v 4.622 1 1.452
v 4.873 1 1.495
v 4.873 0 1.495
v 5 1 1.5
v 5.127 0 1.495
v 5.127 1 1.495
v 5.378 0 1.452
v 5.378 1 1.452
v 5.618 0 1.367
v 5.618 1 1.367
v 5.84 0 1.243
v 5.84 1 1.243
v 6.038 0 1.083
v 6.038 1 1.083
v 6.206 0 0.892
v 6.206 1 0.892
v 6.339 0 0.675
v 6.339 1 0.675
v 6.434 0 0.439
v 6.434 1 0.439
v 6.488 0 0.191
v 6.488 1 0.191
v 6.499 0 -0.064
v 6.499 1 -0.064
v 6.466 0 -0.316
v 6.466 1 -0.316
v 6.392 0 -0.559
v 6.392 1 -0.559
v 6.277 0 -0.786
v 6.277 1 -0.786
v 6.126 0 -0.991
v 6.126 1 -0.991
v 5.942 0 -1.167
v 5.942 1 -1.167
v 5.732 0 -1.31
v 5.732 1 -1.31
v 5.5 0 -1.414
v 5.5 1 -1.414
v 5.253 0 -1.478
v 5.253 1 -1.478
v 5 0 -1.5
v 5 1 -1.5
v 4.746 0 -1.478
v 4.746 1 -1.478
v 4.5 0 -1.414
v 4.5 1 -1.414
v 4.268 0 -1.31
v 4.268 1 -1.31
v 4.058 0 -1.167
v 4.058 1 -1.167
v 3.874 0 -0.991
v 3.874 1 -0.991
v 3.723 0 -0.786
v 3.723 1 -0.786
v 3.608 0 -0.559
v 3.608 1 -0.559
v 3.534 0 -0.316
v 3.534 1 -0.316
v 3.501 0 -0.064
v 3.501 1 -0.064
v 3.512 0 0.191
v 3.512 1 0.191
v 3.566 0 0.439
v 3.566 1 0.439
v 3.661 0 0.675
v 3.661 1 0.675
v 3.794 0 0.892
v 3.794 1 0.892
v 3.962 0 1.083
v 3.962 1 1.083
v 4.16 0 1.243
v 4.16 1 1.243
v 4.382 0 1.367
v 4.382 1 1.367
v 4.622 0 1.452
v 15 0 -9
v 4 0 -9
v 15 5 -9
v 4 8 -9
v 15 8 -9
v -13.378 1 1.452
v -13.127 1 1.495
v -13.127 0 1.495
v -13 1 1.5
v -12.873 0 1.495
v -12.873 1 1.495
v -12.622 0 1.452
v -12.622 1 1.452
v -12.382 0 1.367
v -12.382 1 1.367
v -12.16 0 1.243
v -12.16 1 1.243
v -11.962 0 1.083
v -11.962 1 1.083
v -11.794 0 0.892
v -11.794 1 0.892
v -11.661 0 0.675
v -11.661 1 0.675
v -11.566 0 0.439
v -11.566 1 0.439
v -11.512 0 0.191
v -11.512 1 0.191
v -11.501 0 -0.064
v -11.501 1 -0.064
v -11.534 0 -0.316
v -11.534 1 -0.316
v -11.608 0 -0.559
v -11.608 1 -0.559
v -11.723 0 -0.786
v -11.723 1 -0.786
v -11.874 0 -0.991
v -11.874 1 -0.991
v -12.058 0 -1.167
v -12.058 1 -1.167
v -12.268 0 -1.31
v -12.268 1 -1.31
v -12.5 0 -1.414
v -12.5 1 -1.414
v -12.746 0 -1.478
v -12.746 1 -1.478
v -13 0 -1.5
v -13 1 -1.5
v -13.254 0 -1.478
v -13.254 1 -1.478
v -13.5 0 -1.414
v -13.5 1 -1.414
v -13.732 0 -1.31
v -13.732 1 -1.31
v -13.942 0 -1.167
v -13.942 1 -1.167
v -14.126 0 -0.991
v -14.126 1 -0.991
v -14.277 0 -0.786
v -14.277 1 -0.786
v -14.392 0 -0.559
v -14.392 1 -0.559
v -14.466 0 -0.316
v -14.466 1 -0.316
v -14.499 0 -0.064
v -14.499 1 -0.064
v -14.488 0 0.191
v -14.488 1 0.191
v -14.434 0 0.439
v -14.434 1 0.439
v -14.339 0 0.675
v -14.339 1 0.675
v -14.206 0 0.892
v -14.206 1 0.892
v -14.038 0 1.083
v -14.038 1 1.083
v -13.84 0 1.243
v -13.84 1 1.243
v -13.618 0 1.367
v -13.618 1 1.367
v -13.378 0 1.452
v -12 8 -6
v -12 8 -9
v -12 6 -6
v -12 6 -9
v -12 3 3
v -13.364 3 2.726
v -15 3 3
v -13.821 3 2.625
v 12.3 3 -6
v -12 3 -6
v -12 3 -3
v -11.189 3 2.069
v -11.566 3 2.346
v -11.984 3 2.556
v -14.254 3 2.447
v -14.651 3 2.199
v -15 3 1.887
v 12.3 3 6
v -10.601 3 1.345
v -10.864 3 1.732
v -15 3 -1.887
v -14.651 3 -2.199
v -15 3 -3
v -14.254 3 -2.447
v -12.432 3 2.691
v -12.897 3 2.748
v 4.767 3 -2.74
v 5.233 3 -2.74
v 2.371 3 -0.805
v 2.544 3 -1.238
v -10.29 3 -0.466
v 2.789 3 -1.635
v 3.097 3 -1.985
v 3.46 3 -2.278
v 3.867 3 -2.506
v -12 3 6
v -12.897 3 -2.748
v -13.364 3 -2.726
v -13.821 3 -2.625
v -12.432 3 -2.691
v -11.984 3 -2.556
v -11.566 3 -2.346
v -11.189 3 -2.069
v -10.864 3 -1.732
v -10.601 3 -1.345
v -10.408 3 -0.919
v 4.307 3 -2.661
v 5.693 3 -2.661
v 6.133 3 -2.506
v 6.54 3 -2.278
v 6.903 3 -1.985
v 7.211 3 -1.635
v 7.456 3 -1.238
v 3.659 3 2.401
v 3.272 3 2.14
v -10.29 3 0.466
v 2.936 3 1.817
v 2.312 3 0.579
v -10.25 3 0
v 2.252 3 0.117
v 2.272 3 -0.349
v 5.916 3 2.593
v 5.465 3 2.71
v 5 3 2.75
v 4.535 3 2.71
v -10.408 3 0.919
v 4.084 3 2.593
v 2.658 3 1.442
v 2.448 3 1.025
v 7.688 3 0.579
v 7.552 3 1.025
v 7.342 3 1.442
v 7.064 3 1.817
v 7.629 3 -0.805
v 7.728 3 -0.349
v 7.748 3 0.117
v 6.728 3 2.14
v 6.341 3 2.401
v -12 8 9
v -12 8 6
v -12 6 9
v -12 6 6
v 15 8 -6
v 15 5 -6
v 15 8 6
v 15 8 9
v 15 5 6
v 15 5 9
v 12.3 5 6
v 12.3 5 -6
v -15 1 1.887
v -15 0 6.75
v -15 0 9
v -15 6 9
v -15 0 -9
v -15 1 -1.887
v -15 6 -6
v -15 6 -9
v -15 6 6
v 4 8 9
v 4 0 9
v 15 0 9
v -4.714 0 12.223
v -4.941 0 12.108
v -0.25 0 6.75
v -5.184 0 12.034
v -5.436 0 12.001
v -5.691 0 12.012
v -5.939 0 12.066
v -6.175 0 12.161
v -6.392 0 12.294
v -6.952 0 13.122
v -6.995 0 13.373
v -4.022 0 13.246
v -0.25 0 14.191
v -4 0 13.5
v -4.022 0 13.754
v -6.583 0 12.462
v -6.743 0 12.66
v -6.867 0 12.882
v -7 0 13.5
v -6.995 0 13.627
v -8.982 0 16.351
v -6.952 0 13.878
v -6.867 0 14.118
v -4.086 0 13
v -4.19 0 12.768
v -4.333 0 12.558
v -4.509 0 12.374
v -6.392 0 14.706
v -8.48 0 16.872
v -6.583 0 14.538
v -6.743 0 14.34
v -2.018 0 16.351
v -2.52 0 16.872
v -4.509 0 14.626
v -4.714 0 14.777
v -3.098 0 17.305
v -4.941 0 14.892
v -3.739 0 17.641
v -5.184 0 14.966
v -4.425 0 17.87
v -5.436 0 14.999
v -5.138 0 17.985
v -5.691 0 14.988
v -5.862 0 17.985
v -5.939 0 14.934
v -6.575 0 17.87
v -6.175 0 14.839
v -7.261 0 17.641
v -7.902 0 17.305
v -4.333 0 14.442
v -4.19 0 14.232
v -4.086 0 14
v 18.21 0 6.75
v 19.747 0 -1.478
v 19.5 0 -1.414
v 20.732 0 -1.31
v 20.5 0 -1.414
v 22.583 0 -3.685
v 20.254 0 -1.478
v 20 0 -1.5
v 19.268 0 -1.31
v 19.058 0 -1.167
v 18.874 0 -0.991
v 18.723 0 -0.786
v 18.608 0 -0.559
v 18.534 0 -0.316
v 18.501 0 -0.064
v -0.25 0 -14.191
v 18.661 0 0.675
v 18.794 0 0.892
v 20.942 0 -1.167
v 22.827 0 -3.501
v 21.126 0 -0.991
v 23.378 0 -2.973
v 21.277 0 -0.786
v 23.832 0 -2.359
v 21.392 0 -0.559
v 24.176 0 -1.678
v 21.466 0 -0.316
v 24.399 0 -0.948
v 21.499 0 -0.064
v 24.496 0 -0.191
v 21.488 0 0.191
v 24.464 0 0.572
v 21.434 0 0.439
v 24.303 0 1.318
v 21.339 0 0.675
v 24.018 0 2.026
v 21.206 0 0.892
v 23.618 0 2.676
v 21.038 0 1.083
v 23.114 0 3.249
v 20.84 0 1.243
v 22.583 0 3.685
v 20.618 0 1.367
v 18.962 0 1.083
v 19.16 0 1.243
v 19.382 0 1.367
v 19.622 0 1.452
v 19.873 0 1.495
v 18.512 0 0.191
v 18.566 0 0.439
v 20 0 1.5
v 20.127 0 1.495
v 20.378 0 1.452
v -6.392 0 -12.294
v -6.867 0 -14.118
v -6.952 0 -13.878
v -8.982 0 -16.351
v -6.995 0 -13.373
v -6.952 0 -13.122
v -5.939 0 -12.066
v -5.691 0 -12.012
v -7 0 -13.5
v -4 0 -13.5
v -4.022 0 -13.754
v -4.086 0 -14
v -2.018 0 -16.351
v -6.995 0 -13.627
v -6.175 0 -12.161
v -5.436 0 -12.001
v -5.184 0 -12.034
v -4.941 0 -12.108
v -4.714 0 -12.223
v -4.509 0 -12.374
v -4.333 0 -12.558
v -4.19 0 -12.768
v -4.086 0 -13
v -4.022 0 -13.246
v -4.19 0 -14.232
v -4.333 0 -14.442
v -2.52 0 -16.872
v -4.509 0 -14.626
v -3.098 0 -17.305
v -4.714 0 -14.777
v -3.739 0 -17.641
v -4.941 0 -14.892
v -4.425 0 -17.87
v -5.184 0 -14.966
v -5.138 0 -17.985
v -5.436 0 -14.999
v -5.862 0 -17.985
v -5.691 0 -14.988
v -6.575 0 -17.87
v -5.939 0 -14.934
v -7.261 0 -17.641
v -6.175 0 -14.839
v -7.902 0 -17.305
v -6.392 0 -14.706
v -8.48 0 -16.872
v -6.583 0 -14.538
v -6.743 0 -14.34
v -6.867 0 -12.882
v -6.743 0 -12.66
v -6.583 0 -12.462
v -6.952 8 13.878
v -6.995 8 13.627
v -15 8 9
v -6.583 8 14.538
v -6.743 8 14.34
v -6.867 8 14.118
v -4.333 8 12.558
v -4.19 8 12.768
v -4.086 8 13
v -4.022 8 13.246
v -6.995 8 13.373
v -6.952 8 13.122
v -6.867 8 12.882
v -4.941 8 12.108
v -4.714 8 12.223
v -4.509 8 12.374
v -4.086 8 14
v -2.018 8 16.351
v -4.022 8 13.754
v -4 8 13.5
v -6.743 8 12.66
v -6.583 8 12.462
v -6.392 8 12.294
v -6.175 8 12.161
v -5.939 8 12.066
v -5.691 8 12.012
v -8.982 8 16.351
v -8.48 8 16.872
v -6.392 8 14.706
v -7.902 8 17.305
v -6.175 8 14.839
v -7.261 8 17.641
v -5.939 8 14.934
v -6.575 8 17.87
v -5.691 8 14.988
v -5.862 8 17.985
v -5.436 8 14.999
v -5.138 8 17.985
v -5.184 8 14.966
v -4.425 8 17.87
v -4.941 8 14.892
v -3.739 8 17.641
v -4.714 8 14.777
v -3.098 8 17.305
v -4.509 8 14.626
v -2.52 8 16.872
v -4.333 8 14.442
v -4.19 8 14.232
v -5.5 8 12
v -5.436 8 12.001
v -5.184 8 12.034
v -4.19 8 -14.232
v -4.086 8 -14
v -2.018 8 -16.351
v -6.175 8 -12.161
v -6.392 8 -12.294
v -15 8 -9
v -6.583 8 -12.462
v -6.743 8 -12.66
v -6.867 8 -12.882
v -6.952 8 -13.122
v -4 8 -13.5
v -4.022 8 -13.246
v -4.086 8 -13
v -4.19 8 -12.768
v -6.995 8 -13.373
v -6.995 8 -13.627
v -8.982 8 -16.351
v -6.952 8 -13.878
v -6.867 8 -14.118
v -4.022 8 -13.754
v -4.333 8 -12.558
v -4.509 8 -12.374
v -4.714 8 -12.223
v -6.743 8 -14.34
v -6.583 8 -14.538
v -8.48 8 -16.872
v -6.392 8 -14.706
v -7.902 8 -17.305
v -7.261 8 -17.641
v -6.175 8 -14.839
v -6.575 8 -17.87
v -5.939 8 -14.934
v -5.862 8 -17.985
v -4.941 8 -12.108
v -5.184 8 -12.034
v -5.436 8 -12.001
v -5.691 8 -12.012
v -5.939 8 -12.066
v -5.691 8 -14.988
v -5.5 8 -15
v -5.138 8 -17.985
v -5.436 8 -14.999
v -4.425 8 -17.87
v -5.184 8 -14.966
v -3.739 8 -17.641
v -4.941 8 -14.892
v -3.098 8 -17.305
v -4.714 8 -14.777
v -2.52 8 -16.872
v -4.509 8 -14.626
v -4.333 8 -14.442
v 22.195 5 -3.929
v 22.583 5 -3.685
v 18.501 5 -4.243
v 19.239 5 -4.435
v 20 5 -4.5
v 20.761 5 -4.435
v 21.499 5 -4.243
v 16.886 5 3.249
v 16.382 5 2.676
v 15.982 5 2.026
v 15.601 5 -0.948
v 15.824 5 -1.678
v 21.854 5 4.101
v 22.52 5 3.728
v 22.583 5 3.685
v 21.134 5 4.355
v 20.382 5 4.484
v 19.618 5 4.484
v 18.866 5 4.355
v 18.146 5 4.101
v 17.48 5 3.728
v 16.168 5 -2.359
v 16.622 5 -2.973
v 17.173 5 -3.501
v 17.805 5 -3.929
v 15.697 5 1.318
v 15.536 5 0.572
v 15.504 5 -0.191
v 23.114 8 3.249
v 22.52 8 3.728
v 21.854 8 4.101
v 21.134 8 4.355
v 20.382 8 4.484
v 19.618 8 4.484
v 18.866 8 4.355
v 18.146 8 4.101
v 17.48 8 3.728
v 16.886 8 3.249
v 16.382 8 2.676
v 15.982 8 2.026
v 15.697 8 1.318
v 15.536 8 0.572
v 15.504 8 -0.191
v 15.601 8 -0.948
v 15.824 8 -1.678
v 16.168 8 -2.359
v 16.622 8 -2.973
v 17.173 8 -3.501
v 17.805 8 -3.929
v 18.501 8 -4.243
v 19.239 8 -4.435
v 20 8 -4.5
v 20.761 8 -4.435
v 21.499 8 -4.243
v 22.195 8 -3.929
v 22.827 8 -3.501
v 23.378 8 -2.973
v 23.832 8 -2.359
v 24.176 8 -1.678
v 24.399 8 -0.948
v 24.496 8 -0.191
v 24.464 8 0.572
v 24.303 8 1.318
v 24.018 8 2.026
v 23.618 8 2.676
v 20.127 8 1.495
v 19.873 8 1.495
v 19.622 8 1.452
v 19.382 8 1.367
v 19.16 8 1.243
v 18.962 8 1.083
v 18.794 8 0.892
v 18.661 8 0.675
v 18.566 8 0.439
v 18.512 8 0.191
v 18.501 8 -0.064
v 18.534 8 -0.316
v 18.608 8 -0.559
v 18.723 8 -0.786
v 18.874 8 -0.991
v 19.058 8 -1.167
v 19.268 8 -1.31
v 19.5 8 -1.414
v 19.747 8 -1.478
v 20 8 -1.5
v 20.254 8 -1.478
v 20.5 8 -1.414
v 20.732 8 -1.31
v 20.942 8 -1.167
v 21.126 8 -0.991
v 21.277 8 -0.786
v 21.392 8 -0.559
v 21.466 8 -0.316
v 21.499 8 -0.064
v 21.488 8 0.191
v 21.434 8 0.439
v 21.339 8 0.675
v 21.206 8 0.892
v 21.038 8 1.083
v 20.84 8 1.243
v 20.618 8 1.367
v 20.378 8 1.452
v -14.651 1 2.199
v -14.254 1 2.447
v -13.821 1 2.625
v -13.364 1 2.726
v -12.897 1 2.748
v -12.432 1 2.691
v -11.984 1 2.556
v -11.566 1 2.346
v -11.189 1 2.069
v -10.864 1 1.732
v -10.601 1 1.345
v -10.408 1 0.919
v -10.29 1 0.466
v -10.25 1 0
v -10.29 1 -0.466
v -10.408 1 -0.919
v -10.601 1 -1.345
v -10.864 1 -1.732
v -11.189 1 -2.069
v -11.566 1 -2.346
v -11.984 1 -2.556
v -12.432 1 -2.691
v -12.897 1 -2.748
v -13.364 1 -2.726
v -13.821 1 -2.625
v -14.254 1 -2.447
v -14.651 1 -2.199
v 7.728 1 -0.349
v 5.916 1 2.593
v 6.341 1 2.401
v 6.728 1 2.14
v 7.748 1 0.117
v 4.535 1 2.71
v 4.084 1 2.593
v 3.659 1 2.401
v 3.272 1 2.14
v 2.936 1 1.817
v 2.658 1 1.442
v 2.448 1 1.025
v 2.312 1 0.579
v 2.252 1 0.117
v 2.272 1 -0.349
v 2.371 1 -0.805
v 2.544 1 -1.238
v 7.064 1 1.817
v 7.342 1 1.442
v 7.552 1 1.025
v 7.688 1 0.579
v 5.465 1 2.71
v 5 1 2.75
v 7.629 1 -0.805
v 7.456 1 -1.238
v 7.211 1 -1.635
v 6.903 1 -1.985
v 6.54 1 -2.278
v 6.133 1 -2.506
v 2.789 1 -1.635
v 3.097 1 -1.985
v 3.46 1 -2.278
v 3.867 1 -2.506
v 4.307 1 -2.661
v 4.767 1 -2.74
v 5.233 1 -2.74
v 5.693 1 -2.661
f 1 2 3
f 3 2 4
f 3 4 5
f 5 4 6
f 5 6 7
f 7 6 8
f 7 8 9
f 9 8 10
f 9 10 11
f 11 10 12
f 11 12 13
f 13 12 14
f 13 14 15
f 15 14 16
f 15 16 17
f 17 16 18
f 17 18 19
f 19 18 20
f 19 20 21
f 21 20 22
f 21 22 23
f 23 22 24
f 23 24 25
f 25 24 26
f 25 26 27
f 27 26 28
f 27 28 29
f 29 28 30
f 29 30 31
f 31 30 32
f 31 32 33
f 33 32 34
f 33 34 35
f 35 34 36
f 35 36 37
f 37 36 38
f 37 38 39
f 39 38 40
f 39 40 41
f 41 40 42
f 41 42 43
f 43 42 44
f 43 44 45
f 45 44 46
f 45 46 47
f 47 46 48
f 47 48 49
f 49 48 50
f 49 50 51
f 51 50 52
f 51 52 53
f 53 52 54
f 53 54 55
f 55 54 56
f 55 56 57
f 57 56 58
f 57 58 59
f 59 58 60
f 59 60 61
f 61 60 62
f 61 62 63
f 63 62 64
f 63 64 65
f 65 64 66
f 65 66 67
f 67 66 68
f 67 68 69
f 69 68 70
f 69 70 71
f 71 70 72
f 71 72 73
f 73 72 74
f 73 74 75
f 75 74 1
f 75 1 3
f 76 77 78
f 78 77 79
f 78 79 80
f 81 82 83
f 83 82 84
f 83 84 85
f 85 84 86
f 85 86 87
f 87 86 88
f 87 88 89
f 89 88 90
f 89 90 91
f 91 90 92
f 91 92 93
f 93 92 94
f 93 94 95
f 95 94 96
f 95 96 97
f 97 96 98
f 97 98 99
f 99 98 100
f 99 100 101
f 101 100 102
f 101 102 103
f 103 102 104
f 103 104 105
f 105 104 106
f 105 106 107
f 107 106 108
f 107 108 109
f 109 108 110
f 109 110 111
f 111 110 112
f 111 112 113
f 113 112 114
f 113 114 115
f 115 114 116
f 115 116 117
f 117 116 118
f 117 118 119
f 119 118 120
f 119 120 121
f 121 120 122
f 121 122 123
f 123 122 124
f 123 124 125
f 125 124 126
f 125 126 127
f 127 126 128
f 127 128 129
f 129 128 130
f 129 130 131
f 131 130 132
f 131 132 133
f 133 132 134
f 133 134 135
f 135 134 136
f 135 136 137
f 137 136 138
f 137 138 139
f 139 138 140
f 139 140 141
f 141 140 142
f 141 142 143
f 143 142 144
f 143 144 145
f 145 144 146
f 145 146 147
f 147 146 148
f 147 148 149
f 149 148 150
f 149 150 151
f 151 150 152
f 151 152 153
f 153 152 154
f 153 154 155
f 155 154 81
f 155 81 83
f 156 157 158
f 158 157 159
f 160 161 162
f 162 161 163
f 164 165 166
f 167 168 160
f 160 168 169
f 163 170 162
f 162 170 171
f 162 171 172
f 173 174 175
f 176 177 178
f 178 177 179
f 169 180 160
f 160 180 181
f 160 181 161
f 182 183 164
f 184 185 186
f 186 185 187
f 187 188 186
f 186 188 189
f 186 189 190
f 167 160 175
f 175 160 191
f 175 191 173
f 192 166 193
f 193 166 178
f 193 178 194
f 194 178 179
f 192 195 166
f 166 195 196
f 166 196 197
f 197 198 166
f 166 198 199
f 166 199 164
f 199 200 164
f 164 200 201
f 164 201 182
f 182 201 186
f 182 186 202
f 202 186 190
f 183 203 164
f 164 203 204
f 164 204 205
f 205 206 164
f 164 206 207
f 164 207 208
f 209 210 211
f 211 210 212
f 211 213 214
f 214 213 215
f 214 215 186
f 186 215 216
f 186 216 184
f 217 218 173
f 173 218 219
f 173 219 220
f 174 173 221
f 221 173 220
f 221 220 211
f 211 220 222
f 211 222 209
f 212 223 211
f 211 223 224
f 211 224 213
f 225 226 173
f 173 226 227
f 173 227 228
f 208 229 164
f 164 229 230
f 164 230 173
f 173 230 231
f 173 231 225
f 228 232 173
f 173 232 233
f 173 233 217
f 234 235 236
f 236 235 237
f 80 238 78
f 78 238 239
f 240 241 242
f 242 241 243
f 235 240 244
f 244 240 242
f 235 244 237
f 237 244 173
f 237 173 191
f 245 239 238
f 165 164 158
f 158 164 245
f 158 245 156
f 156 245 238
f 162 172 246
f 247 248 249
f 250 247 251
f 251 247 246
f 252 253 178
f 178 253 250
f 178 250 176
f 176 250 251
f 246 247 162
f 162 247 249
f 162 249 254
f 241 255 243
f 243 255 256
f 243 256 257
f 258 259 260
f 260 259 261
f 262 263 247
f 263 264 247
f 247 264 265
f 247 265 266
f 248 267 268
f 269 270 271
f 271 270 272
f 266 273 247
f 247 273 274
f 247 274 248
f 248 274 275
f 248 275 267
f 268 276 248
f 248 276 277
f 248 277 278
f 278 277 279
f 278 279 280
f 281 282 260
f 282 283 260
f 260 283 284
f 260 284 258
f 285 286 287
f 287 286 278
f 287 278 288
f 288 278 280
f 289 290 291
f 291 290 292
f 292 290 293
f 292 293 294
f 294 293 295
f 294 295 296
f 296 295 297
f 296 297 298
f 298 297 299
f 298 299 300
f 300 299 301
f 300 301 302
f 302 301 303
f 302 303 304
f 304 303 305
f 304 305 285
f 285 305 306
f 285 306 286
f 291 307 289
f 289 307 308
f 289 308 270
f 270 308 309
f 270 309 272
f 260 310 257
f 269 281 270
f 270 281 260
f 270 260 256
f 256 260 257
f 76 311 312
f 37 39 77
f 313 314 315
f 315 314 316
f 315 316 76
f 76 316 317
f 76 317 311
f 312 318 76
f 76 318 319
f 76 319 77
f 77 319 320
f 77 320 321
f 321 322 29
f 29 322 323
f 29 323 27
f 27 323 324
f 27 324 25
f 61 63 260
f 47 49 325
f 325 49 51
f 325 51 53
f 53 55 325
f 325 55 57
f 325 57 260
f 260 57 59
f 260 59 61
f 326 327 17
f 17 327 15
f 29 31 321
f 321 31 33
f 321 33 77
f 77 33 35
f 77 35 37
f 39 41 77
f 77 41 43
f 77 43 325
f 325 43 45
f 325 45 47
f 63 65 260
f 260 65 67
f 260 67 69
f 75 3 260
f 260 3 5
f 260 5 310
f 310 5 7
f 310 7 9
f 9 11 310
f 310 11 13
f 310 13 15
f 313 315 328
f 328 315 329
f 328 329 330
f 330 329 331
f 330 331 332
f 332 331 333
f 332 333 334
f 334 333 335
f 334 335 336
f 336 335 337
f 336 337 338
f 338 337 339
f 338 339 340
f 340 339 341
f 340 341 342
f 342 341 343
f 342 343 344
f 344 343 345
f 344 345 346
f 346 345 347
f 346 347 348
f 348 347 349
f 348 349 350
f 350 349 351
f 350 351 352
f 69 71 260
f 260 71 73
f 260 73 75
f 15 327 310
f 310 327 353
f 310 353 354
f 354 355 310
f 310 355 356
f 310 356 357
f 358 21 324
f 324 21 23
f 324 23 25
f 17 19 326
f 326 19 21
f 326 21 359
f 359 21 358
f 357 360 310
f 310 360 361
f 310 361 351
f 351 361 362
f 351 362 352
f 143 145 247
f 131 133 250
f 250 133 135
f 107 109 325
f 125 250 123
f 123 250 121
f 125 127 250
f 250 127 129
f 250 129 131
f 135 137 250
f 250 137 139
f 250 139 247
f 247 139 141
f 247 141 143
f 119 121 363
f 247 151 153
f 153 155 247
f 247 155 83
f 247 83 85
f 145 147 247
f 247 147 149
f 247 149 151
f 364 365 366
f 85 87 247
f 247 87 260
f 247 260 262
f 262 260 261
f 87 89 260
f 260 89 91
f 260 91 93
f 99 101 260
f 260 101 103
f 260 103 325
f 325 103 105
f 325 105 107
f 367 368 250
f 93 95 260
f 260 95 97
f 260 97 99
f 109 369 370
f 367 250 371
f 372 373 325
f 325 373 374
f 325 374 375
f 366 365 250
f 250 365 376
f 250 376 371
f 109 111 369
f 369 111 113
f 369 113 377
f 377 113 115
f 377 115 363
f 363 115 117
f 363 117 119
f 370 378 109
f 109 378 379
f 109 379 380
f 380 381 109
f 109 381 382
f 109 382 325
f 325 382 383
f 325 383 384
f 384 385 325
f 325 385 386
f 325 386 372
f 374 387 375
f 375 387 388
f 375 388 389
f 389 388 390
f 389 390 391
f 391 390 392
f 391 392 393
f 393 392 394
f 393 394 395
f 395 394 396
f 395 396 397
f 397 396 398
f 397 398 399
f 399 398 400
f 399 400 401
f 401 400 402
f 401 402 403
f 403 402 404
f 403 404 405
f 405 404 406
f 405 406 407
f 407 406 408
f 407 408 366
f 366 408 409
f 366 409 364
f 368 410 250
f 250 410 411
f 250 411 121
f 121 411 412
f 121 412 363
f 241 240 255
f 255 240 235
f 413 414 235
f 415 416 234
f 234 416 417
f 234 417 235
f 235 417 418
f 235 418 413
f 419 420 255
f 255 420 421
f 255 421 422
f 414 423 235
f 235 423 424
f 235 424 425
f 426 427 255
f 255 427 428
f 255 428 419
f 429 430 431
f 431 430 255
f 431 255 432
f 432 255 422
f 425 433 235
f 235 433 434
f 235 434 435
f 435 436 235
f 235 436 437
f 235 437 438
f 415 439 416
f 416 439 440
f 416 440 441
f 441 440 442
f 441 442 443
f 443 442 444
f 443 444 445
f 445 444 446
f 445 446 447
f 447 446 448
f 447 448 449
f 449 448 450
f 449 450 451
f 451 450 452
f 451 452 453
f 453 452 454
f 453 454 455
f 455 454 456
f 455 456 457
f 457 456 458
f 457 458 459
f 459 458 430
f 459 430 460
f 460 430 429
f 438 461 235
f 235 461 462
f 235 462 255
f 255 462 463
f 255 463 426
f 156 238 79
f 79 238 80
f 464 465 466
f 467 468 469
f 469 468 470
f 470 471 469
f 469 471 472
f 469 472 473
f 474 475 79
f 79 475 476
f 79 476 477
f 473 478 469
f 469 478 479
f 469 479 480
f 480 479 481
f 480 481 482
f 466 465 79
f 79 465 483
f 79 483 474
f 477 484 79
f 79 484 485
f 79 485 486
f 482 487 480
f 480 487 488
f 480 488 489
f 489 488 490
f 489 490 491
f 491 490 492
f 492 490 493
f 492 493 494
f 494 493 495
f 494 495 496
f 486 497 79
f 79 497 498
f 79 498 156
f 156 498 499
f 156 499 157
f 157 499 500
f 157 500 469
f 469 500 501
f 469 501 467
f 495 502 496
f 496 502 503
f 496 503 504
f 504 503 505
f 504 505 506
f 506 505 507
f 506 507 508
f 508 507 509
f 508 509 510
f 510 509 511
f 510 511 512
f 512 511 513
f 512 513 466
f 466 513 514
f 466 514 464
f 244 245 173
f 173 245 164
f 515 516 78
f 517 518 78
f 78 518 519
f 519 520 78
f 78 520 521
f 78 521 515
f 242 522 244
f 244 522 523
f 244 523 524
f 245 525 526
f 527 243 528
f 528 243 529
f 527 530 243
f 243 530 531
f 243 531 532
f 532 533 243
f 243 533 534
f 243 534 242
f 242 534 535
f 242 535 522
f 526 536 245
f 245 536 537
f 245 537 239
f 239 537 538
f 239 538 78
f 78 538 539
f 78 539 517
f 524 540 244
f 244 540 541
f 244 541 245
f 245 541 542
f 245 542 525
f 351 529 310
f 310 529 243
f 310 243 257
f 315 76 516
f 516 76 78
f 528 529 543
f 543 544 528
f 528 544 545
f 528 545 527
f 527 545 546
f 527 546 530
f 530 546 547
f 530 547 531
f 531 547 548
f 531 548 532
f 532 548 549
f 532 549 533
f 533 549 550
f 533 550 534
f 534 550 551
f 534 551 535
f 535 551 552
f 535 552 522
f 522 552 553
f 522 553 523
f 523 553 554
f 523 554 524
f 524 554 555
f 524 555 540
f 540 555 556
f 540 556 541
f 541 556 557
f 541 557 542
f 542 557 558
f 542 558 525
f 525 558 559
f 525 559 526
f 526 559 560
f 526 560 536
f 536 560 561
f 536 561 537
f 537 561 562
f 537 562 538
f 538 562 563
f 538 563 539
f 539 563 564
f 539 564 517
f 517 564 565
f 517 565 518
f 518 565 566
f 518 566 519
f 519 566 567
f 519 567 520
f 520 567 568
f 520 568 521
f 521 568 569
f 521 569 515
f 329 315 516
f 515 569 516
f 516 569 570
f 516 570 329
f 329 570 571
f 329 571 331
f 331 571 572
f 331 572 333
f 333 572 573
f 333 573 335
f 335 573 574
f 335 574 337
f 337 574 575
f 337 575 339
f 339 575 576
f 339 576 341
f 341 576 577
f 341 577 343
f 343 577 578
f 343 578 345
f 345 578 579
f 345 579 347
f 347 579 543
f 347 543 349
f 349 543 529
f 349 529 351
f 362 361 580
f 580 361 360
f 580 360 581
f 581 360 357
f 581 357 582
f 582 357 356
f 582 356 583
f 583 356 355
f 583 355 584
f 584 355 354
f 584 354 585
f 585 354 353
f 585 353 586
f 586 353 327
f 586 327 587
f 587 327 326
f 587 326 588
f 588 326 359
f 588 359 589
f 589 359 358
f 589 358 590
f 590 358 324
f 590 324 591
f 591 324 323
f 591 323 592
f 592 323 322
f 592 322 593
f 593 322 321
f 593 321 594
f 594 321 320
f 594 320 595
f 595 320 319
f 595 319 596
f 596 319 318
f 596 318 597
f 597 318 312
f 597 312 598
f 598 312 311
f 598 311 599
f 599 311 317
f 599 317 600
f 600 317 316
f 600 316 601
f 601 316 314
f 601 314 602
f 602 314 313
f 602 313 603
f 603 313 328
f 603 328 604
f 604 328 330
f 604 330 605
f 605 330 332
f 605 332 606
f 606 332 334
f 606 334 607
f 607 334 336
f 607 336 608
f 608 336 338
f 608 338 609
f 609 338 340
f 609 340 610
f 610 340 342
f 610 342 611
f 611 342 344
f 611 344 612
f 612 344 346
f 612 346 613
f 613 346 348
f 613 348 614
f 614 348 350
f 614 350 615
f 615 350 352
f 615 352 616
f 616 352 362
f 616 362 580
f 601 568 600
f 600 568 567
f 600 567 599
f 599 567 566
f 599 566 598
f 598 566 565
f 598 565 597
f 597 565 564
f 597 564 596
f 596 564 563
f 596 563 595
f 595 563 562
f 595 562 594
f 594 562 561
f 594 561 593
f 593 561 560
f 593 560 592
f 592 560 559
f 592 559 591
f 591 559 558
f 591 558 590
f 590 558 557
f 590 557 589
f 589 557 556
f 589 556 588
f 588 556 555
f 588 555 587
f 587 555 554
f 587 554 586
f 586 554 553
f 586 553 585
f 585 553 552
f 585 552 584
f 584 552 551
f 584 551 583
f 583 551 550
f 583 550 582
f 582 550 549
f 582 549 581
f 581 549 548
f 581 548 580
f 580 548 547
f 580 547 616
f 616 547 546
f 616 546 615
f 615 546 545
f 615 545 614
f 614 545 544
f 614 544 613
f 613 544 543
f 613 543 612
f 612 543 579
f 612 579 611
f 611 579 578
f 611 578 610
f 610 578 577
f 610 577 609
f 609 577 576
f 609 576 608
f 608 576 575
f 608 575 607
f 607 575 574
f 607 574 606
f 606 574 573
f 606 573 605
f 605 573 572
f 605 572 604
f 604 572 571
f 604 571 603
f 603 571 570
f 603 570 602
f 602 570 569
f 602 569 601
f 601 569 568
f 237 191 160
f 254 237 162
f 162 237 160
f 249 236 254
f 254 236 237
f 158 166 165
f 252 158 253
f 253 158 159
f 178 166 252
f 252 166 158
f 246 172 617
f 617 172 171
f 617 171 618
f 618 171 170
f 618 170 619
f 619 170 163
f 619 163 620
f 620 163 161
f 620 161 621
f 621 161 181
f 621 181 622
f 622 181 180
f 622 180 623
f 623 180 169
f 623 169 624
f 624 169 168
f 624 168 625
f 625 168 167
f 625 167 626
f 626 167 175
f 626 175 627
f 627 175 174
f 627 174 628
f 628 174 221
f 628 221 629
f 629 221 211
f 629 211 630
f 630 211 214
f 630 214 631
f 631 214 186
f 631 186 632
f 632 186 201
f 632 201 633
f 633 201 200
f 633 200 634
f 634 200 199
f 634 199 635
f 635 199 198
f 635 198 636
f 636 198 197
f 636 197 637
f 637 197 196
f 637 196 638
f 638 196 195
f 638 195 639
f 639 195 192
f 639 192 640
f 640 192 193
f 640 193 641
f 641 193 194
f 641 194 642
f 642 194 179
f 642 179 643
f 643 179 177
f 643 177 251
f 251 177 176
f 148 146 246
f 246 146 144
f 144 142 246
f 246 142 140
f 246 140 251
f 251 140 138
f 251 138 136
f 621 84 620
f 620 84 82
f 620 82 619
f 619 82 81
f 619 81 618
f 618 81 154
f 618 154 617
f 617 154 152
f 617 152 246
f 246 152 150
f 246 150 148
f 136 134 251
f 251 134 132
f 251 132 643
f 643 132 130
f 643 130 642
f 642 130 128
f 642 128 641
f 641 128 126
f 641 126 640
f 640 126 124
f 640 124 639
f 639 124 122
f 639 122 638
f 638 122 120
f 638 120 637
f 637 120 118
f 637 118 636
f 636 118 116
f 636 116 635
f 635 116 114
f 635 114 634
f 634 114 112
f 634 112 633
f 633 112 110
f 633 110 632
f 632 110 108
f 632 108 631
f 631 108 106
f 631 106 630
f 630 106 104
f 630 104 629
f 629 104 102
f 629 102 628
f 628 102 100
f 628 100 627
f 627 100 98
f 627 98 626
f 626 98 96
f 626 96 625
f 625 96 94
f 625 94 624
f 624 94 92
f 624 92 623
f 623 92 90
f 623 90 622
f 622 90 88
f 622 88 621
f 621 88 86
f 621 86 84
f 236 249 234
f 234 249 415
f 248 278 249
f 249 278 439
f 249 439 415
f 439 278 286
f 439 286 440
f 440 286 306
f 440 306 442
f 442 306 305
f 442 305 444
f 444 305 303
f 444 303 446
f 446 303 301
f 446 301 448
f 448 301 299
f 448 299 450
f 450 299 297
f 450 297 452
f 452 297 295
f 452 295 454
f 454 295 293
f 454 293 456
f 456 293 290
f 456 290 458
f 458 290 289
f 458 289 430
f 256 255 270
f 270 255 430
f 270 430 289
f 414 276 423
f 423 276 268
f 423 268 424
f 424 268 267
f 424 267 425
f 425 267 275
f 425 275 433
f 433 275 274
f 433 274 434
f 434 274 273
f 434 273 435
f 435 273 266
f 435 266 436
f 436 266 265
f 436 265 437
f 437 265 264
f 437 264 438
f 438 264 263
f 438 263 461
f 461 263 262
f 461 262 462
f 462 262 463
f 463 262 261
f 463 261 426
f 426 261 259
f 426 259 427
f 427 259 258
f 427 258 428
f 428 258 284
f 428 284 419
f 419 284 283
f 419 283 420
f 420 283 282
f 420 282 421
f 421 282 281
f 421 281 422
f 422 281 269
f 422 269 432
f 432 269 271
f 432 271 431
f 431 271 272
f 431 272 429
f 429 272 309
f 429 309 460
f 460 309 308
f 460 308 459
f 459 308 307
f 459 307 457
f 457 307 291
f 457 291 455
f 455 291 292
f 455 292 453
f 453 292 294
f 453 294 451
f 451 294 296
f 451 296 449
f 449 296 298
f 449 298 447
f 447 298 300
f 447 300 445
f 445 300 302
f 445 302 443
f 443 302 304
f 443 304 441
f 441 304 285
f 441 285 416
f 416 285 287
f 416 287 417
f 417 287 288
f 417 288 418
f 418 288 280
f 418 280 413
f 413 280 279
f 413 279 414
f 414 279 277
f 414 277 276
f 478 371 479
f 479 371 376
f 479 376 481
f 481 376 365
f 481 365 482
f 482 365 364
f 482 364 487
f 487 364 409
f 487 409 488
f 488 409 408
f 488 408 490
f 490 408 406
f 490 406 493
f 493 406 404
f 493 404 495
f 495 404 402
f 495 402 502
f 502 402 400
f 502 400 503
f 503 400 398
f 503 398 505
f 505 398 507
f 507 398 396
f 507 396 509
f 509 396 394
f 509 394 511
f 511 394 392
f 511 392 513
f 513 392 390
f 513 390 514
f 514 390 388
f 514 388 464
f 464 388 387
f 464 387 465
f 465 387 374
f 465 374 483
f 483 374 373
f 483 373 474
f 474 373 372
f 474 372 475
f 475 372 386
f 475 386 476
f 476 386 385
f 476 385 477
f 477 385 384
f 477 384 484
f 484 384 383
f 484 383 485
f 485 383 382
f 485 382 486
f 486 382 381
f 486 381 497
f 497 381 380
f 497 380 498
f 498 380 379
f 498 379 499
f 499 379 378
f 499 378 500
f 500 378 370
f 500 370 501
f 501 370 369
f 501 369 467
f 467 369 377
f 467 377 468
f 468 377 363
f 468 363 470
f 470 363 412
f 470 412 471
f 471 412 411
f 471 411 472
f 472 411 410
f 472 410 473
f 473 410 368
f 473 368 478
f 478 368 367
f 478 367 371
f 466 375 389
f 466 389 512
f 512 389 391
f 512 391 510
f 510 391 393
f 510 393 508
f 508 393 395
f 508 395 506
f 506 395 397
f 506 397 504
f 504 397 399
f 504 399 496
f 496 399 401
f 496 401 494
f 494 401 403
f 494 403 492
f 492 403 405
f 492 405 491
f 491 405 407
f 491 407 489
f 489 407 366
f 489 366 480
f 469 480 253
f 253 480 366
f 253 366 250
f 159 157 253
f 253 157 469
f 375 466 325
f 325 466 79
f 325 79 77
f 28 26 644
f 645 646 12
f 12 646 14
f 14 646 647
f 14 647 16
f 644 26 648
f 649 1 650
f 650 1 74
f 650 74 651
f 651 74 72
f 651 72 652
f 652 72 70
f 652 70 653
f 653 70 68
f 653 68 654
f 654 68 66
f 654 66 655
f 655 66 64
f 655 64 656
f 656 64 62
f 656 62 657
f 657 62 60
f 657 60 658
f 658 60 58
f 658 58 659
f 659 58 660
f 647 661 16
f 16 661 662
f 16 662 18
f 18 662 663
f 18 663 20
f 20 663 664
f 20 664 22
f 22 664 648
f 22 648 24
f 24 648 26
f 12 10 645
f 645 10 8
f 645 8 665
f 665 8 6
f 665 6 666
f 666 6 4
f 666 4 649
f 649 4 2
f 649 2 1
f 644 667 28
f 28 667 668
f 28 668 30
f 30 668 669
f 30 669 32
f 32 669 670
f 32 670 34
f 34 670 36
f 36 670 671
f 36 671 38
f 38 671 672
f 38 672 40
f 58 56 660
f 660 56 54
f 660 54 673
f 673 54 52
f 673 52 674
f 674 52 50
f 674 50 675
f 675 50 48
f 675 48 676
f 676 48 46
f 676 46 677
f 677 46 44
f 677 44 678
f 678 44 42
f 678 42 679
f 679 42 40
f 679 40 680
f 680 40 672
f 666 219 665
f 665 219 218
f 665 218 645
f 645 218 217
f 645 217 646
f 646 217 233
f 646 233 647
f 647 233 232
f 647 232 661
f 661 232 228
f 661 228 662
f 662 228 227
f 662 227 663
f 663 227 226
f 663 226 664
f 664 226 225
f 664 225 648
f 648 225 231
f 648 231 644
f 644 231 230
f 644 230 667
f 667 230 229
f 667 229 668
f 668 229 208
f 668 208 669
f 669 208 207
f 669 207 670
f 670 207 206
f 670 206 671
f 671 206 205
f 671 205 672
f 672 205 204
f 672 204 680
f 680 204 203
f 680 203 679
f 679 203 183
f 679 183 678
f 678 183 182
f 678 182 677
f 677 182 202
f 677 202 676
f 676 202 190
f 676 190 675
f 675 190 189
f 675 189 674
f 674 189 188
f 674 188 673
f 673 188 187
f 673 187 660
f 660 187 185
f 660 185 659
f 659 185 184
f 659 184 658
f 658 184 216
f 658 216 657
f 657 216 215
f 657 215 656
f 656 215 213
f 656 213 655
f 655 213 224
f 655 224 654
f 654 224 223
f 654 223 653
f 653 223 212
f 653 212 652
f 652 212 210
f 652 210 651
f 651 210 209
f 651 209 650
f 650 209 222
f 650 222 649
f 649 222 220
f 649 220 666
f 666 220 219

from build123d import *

# Parameters (mm, degrees)
SKETCH_1_W          = 30
SKETCH_1_H          = 18
EXTRUDE_1_DEPTH     = 3
SKETCH_2_W          = 27
SKETCH_2_H          = 3
EXTRUDE_2_DEPTH     = 5
SKETCH_3_W          = 2.7
SKETCH_3_H          = 12
EXTRUDE_3_DEPTH     = 2
SKETCH_4_R          = 4.5
SKETCH_4_R_2        = 1.5
EXTRUDE_4_DEPTH     = 8
EXTRUDE_5_DEPTH     = 5
EXTRUDE_6_DEPTH     = 3
SKETCH_11_R         = 1.5
CUT_EXTRUDE_1_DEPTH = 3
SKETCH_12_R         = 2.75
CUT_EXTRUDE_2_DEPTH = 2
EXTRUDE_7_REACH     = 29.299
SKETCH_8_R          = 1.5
SKETCH_8_R_2        = 0.75
SKETCH_13_R         = 1.5
CUT_EXTRUDE_3_DEPTH = 3
SKETCH_14_R         = 2.75
CUT_EXTRUDE_4_DEPTH = 2


with BuildPart() as part:
    # Эскиз1 → Бобышка-Вытянуть1 (new body)
    with BuildSketch(Plane(origin=(0, 0, 0), x_dir=(1, 0, 0), z_dir=(0, 1, 0))):
        Rectangle(SKETCH_1_W, SKETCH_1_H)
    extrude(amount=EXTRUDE_1_DEPTH)

    # Эскиз2 → Бобышка-Вытянуть2 (add)
    with BuildSketch(Plane(origin=(0, 3, 0), x_dir=(1, 0, 0), z_dir=(0, 1, 0))):
        with Locations((1.5, -7.5)):
            Rectangle(SKETCH_2_W, SKETCH_2_H)
        with Locations((1.5, 7.5)):
            Rectangle(SKETCH_2_W, SKETCH_2_H)
    extrude(amount=EXTRUDE_2_DEPTH)

    # Эскиз3 → Бобышка-Вытянуть3 (add)
    with BuildSketch(Plane(origin=(0, 3, 0), x_dir=(1, 0, 0), z_dir=(0, 1, 0))):
        with Locations((13.65, 0)):
            Rectangle(SKETCH_3_W, SKETCH_3_H)
    extrude(amount=EXTRUDE_3_DEPTH)



with BuildPart() as body_2:
    # Эскиз4 → Бобышка-Вытянуть4 (new body)
    with BuildSketch(Plane(origin=(0, 0, 0), x_dir=(1, 0, 0), z_dir=(0, 1, 0))):
        with Locations(Location((20, 0, 0), (0, 0, 90))):
            Circle(SKETCH_4_R)
        with Locations(Location((20, 0, 0), (0, 0, 90))):
            Circle(SKETCH_4_R_2, mode=Mode.SUBTRACT)
    extrude(amount=EXTRUDE_4_DEPTH)


with BuildPart() as part_1:
    add(part.part)

    add(body_2.part)  # Бобышка-Вытянуть5 merges body 2
    # Эскиз5 → Бобышка-Вытянуть5 (add)
    with BuildSketch(Plane.XZ):
        with BuildLine():
            Line((15, 9), (22.582879701, 3.684933167))
            ThreePointArc((22.582879701, 3.684933167), (15.5, 0), (22.582879701, -3.684933167))
            Line((22.582879701, -3.684933167), (15, -9))
            Line((15, -9), (15, 9))
        make_face()
    extrude(amount=-EXTRUDE_5_DEPTH)

    # Эскиз7 → Бобышка-Вытянуть6 (add)
    with BuildSketch(Plane.ZY.offset(12)):
        Polygon((9, 6), (6, 6), (3, 3), (9, 3), align=None)
        Polygon((-3, 3), (-9, 3), (-9, 6), (-6, 6), align=None)
    extrude(amount=EXTRUDE_6_DEPTH)

    # Эскиз11 → Вырез-Вытянуть1 (cut)
    with BuildSketch(Plane.XZ):
        with Locations(Location((-13, 0, 0), (0, 0, 270))):
            Circle(SKETCH_11_R)
    extrude(amount=-CUT_EXTRUDE_1_DEPTH, mode=Mode.SUBTRACT)

    # Эскиз12 → Вырез-Вытянуть2 (cut)
    with BuildSketch(Plane(origin=(0, 3, 0), x_dir=(1, 0, 0), z_dir=(0, 1, 0))):
        with Locations((-13, 0)):
            Circle(SKETCH_12_R)
    extrude(amount=-CUT_EXTRUDE_2_DEPTH, mode=Mode.SUBTRACT)

    # Бобышка-Вытянуть7: up to this face of the body (flat: up to its plane)
    extrude_7_end = Plane(part_1.part.faces().sort_by_distance((1.5, 8, 7.5))[0])
    # Эскиз8 → Бобышка-Вытянуть7 (add, up to the picked face)
    with BuildSketch(Plane(origin=(0, 0, 0), x_dir=(1, 0, 0), z_dir=(0, 1, 0)), mode=Mode.PRIVATE) as extrude_7_sk1:
        with BuildLine():
            Line((-1.468642293, 11.500461294), (-0.958237769, 9))
            Line((-0.958237769, 9), (4, 9))
            Line((4, 9), (-2.018099548, 16.350678733))
            ThreePointArc((-2.018099548, 16.350678733), (-1.262161398, 15.013513786), (-1, 13.5))
            ThreePointArc((-1, 13.5), (-1.118726801, 12.473138199), (-1.468642293, 11.500461294))
        make_face()
    extrude_7_tool1 = split(extrude(extrude_7_sk1.sketch, amount=EXTRUDE_7_REACH, mode=Mode.PRIVATE), bisect_by=extrude_7_end, keep=Keep.BOTH, mode=Mode.PRIVATE)
    # Эскиз8 → Бобышка-Вытянуть7 (add, up to the picked face)
    with BuildSketch(Plane(origin=(0, 0, 0), x_dir=(1, 0, 0), z_dir=(0, 1, 0)), mode=Mode.PRIVATE) as extrude_7_sk2:
        with BuildLine():
            ThreePointArc((-2.018099548, 16.350678733), (-2.284344125, 16.647944931), (-2.575877789, 16.920454545))
            ThreePointArc((-2.575877789, 16.920454545), (-2.568033415, 16.885273128), (-2.560612309, 16.85))
            Line((-2.560612309, 16.85), (-1.468642293, 11.500461294))
            ThreePointArc((-1.468642293, 11.500461294), (-1.118726801, 12.473138199), (-1, 13.5))
            ThreePointArc((-1, 13.5), (-1.262161398, 15.013513786), (-2.018099548, 16.350678733))
        make_face()
    extrude_7_tool2 = split(extrude(extrude_7_sk2.sketch, amount=EXTRUDE_7_REACH, mode=Mode.PRIVATE), bisect_by=extrude_7_end, keep=Keep.BOTH, mode=Mode.PRIVATE)
    # Эскиз8 → Бобышка-Вытянуть7 (add, up to the picked face)
    with BuildSketch(Plane(origin=(0, 0, 0), x_dir=(1, 0, 0), z_dir=(0, 1, 0)), mode=Mode.PRIVATE) as extrude_7_sk3:
        with BuildLine():
            ThreePointArc((-2.575877789, 16.920454545), (-5.5, 18), (-8.424122211, 16.920454545))
            ThreePointArc((-8.424122211, 16.920454545), (-8.431966585, 16.885273128), (-8.439387691, 16.85))
            Line((-8.439387691, 16.85), (-9.531357707, 11.500461294))
            ThreePointArc((-9.531357707, 11.500461294), (-7.871927046, 9.675871068), (-5.5, 9))
            ThreePointArc((-5.5, 9), (-3.128072954, 9.675871068), (-1.468642293, 11.500461294))
            Line((-1.468642293, 11.500461294), (-2.560612309, 16.85))
            ThreePointArc((-2.560612309, 16.85), (-2.568033415, 16.885273128), (-2.575877789, 16.920454545))
        make_face()
        with Locations(Location((-5.5, 13.5, 0), (0, 0, 90))):
            Circle(SKETCH_8_R, mode=Mode.SUBTRACT)
        with Locations((-5.5, 10.416666667)):
            Circle(SKETCH_8_R_2, mode=Mode.SUBTRACT)
        with Locations((-5.5, 16.25)):
            Circle(SKETCH_8_R_2, mode=Mode.SUBTRACT)
    extrude_7_tool3 = split(extrude(extrude_7_sk3.sketch, amount=EXTRUDE_7_REACH, mode=Mode.PRIVATE), bisect_by=extrude_7_end, keep=Keep.BOTH, mode=Mode.PRIVATE)
    # Эскиз8 → Бобышка-Вытянуть7 (add, up to the picked face)
    with BuildSketch(Plane(origin=(0, 0, 0), x_dir=(1, 0, 0), z_dir=(0, 1, 0)), mode=Mode.PRIVATE) as extrude_7_sk4:
        with BuildLine():
            ThreePointArc((-1.468642293, 11.500461294), (-3.128072954, 9.675871068), (-5.5, 9))
            Line((-5.5, 9), (-0.958237769, 9))
            Line((-0.958237769, 9), (-1.468642293, 11.500461294))
        make_face()
    extrude_7_tool4 = split(extrude(extrude_7_sk4.sketch, amount=EXTRUDE_7_REACH, mode=Mode.PRIVATE), bisect_by=extrude_7_end, keep=Keep.BOTH, mode=Mode.PRIVATE)
    # Эскиз8 → Бобышка-Вытянуть7 (add, up to the picked face)
    with BuildSketch(Plane(origin=(0, 0, 0), x_dir=(1, 0, 0), z_dir=(0, 1, 0)), mode=Mode.PRIVATE) as extrude_7_sk5:
        with BuildLine():
            Line((-8.981900452, 16.350678733), (-15, 9))
            Line((-15, 9), (-10.041762231, 9))
            Line((-10.041762231, 9), (-9.531357707, 11.500461294))
            ThreePointArc((-9.531357707, 11.500461294), (-9.971399596, 14.006542846), (-8.981900452, 16.350678733))
        make_face()
    extrude_7_tool5 = split(extrude(extrude_7_sk5.sketch, amount=EXTRUDE_7_REACH, mode=Mode.PRIVATE), bisect_by=extrude_7_end, keep=Keep.BOTH, mode=Mode.PRIVATE)
    # Эскиз8 → Бобышка-Вытянуть7 (add, up to the picked face)
    with BuildSketch(Plane(origin=(0, 0, 0), x_dir=(1, 0, 0), z_dir=(0, 1, 0)), mode=Mode.PRIVATE) as extrude_7_sk6:
        with BuildLine():
            ThreePointArc((-8.424122211, 16.920454545), (-8.715655875, 16.647944931), (-8.981900452, 16.350678733))
            ThreePointArc((-8.981900452, 16.350678733), (-9.971399596, 14.006542846), (-9.531357707, 11.500461294))
            Line((-9.531357707, 11.500461294), (-8.439387691, 16.85))
            ThreePointArc((-8.439387691, 16.85), (-8.431966585, 16.885273128), (-8.424122211, 16.920454545))
        make_face()
    extrude_7_tool6 = split(extrude(extrude_7_sk6.sketch, amount=EXTRUDE_7_REACH, mode=Mode.PRIVATE), bisect_by=extrude_7_end, keep=Keep.BOTH, mode=Mode.PRIVATE)
    # Эскиз8 → Бобышка-Вытянуть7 (add, up to the picked face)
    with BuildSketch(Plane(origin=(0, 0, 0), x_dir=(1, 0, 0), z_dir=(0, 1, 0)), mode=Mode.PRIVATE) as extrude_7_sk7:
        with BuildLine():
            Line((-9.531357707, 11.500461294), (-10.041762231, 9))
            Line((-10.041762231, 9), (-5.5, 9))
            ThreePointArc((-5.5, 9), (-7.871927046, 9.675871068), (-9.531357707, 11.500461294))
        make_face()
    extrude_7_tool7 = split(extrude(extrude_7_sk7.sketch, amount=EXTRUDE_7_REACH, mode=Mode.PRIVATE), bisect_by=extrude_7_end, keep=Keep.BOTH, mode=Mode.PRIVATE)
    # Эскиз8 → Бобышка-Вытянуть7 (add, up to the picked face)
    with BuildSketch(Plane(origin=(0, 0, 0), x_dir=(1, 0, 0), z_dir=(0, 1, 0)), mode=Mode.PRIVATE) as extrude_7_sk8:
        with BuildLine():
            Line((-2.018099548, -16.350678733), (4, -9))
            Line((4, -9), (-0.958237769, -9))
            Line((-0.958237769, -9), (-1.468642293, -11.500461294))
            ThreePointArc((-1.468642293, -11.500461294), (-1.118726801, -12.473138199), (-1, -13.5))
            ThreePointArc((-1, -13.5), (-1.262161398, -15.013513786), (-2.018099548, -16.350678733))
        make_face()
    extrude_7_tool8 = split(extrude(extrude_7_sk8.sketch, amount=EXTRUDE_7_REACH, mode=Mode.PRIVATE), bisect_by=extrude_7_end, keep=Keep.BOTH, mode=Mode.PRIVATE)
    # Эскиз8 → Бобышка-Вытянуть7 (add, up to the picked face)
    with BuildSketch(Plane(origin=(0, 0, 0), x_dir=(1, 0, 0), z_dir=(0, 1, 0)), mode=Mode.PRIVATE) as extrude_7_sk9:
        with BuildLine():
            Line((-1.468642293, -11.500461294), (-0.958237769, -9))
            Line((-0.958237769, -9), (-5.5, -9))
            ThreePointArc((-5.5, -9), (-3.128072954, -9.675871068), (-1.468642293, -11.500461294))
        make_face()
    extrude_7_tool9 = split(extrude(extrude_7_sk9.sketch, amount=EXTRUDE_7_REACH, mode=Mode.PRIVATE), bisect_by=extrude_7_end, keep=Keep.BOTH, mode=Mode.PRIVATE)
    # Эскиз8 → Бобышка-Вытянуть7 (add, up to the picked face)
    with BuildSketch(Plane(origin=(0, 0, 0), x_dir=(1, 0, 0), z_dir=(0, 1, 0)), mode=Mode.PRIVATE) as extrude_7_sk10:
        with BuildLine():
            ThreePointArc((-9.531357707, -11.500461294), (-7.871927046, -9.675871068), (-5.5, -9))
            Line((-5.5, -9), (-10.041762231, -9))
            Line((-10.041762231, -9), (-9.531357707, -11.500461294))
        make_face()
    extrude_7_tool10 = split(extrude(extrude_7_sk10.sketch, amount=EXTRUDE_7_REACH, mode=Mode.PRIVATE), bisect_by=extrude_7_end, keep=Keep.BOTH, mode=Mode.PRIVATE)
    # Эскиз8 → Бобышка-Вытянуть7 (add, up to the picked face)
    with BuildSketch(Plane(origin=(0, 0, 0), x_dir=(1, 0, 0), z_dir=(0, 1, 0)), mode=Mode.PRIVATE) as extrude_7_sk11:
        with BuildLine():
            Line((-9.531357707, -11.500461294), (-10.041762231, -9))
            Line((-10.041762231, -9), (-15, -9))
            Line((-15, -9), (-8.981900452, -16.350678733))
            ThreePointArc((-8.981900452, -16.350678733), (-9.971399596, -14.006542846), (-9.531357707, -11.500461294))
        make_face()
    extrude_7_tool11 = split(extrude(extrude_7_sk11.sketch, amount=EXTRUDE_7_REACH, mode=Mode.PRIVATE), bisect_by=extrude_7_end, keep=Keep.BOTH, mode=Mode.PRIVATE)
    # Эскиз8 → Бобышка-Вытянуть7 (add, up to the picked face)
    with BuildSketch(Plane(origin=(0, 0, 0), x_dir=(1, 0, 0), z_dir=(0, 1, 0)), mode=Mode.PRIVATE) as extrude_7_sk12:
        with BuildLine():
            ThreePointArc((-8.424122211, -16.920454545), (-5.5, -18), (-2.575877789, -16.920454545))
            ThreePointArc((-2.575877789, -16.920454545), (-2.568033415, -16.885273128), (-2.560612309, -16.85))
            Line((-2.560612309, -16.85), (-1.468642293, -11.500461294))
            ThreePointArc((-1.468642293, -11.500461294), (-3.128072954, -9.675871068), (-5.5, -9))
            ThreePointArc((-5.5, -9), (-7.871927046, -9.675871068), (-9.531357707, -11.500461294))
            Line((-9.531357707, -11.500461294), (-8.439387691, -16.85))
            ThreePointArc((-8.439387691, -16.85), (-8.431966585, -16.885273128), (-8.424122211, -16.920454545))
        make_face()
        with Locations(Location((-5.5, -13.5, 0), (0, 0, 90))):
            Circle(SKETCH_8_R, mode=Mode.SUBTRACT)
        with Locations((-5.5, -16.25)):
            Circle(SKETCH_8_R_2, mode=Mode.SUBTRACT)
        with Locations((-5.5, -10.416666667)):
            Circle(SKETCH_8_R_2, mode=Mode.SUBTRACT)
    extrude_7_tool12 = split(extrude(extrude_7_sk12.sketch, amount=EXTRUDE_7_REACH, mode=Mode.PRIVATE), bisect_by=extrude_7_end, keep=Keep.BOTH, mode=Mode.PRIVATE)
    # Эскиз8 → Бобышка-Вытянуть7 (add, up to the picked face)
    with BuildSketch(Plane(origin=(0, 0, 0), x_dir=(1, 0, 0), z_dir=(0, 1, 0)), mode=Mode.PRIVATE) as extrude_7_sk13:
        with BuildLine():
            ThreePointArc((-2.575877789, -16.920454545), (-2.284344125, -16.647944931), (-2.018099548, -16.350678733))
            ThreePointArc((-2.018099548, -16.350678733), (-1.262161398, -15.013513786), (-1, -13.5))
            ThreePointArc((-1, -13.5), (-1.118726801, -12.473138199), (-1.468642293, -11.500461294))
            Line((-1.468642293, -11.500461294), (-2.560612309, -16.85))
            ThreePointArc((-2.560612309, -16.85), (-2.568033415, -16.885273128), (-2.575877789, -16.920454545))
        make_face()
    extrude_7_tool13 = split(extrude(extrude_7_sk13.sketch, amount=EXTRUDE_7_REACH, mode=Mode.PRIVATE), bisect_by=extrude_7_end, keep=Keep.BOTH, mode=Mode.PRIVATE)
    # Эскиз8 → Бобышка-Вытянуть7 (add, up to the picked face)
    with BuildSketch(Plane(origin=(0, 0, 0), x_dir=(1, 0, 0), z_dir=(0, 1, 0)), mode=Mode.PRIVATE) as extrude_7_sk14:
        with BuildLine():
            ThreePointArc((-8.981900452, -16.350678733), (-8.715655875, -16.647944931), (-8.424122211, -16.920454545))
            ThreePointArc((-8.424122211, -16.920454545), (-8.431966585, -16.885273128), (-8.439387691, -16.85))
            Line((-8.439387691, -16.85), (-9.531357707, -11.500461294))
            ThreePointArc((-9.531357707, -11.500461294), (-9.971399596, -14.006542846), (-8.981900452, -16.350678733))
        make_face()
    extrude_7_tool14 = split(extrude(extrude_7_sk14.sketch, amount=EXTRUDE_7_REACH, mode=Mode.PRIVATE), bisect_by=extrude_7_end, keep=Keep.BOTH, mode=Mode.PRIVATE)
    # Эскиз8 → Бобышка-Вытянуть7 (add, up to the picked face)
    with BuildSketch(Plane(origin=(0, 0, 0), x_dir=(1, 0, 0), z_dir=(0, 1, 0)), mode=Mode.PRIVATE) as extrude_7_sk15:
        with Locations((-5.5, -10.416666667)):
            Circle(SKETCH_8_R_2)
    extrude_7_tool15 = split(extrude(extrude_7_sk15.sketch, amount=EXTRUDE_7_REACH, mode=Mode.PRIVATE), bisect_by=extrude_7_end, keep=Keep.BOTH, mode=Mode.PRIVATE)
    # Эскиз8 → Бобышка-Вытянуть7 (add, up to the picked face)
    with BuildSketch(Plane(origin=(0, 0, 0), x_dir=(1, 0, 0), z_dir=(0, 1, 0)), mode=Mode.PRIVATE) as extrude_7_sk16:
        with Locations((-5.5, -16.25)):
            Circle(SKETCH_8_R_2)
    extrude_7_tool16 = split(extrude(extrude_7_sk16.sketch, amount=EXTRUDE_7_REACH, mode=Mode.PRIVATE), bisect_by=extrude_7_end, keep=Keep.BOTH, mode=Mode.PRIVATE)
    # Эскиз8 → Бобышка-Вытянуть7 (add, up to the picked face)
    with BuildSketch(Plane(origin=(0, 0, 0), x_dir=(1, 0, 0), z_dir=(0, 1, 0)), mode=Mode.PRIVATE) as extrude_7_sk17:
        with Locations((-5.5, 16.25)):
            Circle(SKETCH_8_R_2)
    extrude_7_tool17 = split(extrude(extrude_7_sk17.sketch, amount=EXTRUDE_7_REACH, mode=Mode.PRIVATE), bisect_by=extrude_7_end, keep=Keep.BOTH, mode=Mode.PRIVATE)
    # Эскиз8 → Бобышка-Вытянуть7 (add, up to the picked face)
    with BuildSketch(Plane(origin=(0, 0, 0), x_dir=(1, 0, 0), z_dir=(0, 1, 0)), mode=Mode.PRIVATE) as extrude_7_sk18:
        with Locations((-5.5, 10.416666667)):
            Circle(SKETCH_8_R_2)
    extrude_7_tool18 = split(extrude(extrude_7_sk18.sketch, amount=EXTRUDE_7_REACH, mode=Mode.PRIVATE), bisect_by=extrude_7_end, keep=Keep.BOTH, mode=Mode.PRIVATE)
    add(extrude_7_tool1.solids().sort_by(Axis((0.540923, 0, -11.113959), (0, 1, 0)))[0])
    add(extrude_7_tool2.solids().sort_by(Axis((-1.645819, 0, -14.286747), (0, 1, 0)))[0])
    add(extrude_7_tool3.solids().sort_by(Axis((-2.133019, 0, -14.151064), (0, 1, 0)))[0])
    add(extrude_7_tool4.solids().sort_by(Axis((-2.209616, 0, -9.718622), (0, 1, 0)))[0])
    add(extrude_7_tool5.solids().sort_by(Axis((-11.540923, 0, -11.113959), (0, 1, 0)))[0])
    add(extrude_7_tool6.solids().sort_by(Axis((-9.354181, 0, -14.286747), (0, 1, 0)))[0])
    add(extrude_7_tool7.solids().sort_by(Axis((-8.790384, 0, -9.718622), (0, 1, 0)))[0])
    add(extrude_7_tool8.solids().sort_by(Axis((0.540923, 0, 11.113959), (0, 1, 0)))[0])
    add(extrude_7_tool9.solids().sort_by(Axis((-2.209616, 0, 9.718622), (0, 1, 0)))[0])
    add(extrude_7_tool10.solids().sort_by(Axis((-8.790384, 0, 9.718622), (0, 1, 0)))[0])
    add(extrude_7_tool11.solids().sort_by(Axis((-11.540923, 0, 11.113959), (0, 1, 0)))[0])
    add(extrude_7_tool12.solids().sort_by(Axis((-5.5, 0, 17.879166), (0, 1, 0)))[0])
    add(extrude_7_tool13.solids().sort_by(Axis((-1.645819, 0, 14.286747), (0, 1, 0)))[0])
    add(extrude_7_tool14.solids().sort_by(Axis((-9.354181, 0, 14.286747), (0, 1, 0)))[0])
    add(extrude_7_tool15.solids().sort_by(Axis((-5.5, 0, 10.416667), (0, 1, 0)))[0])
    add(extrude_7_tool16.solids().sort_by(Axis((-5.5, 0, 16.25), (0, 1, 0)))[0])
    add(extrude_7_tool17.solids().sort_by(Axis((-5.5, 0, -16.25), (0, 1, 0)))[0])
    add(extrude_7_tool18.solids().sort_by(Axis((-5.5, 0, -10.416667), (0, 1, 0)))[0])

    # Эскиз13 → Вырез-Вытянуть3 (cut)
    with BuildSketch(Plane.XZ):
        with Locations(Location((5, 0, 0), (0, 0, 270))):
            Circle(SKETCH_13_R)
    extrude(amount=-CUT_EXTRUDE_3_DEPTH, mode=Mode.SUBTRACT)

    # Эскиз14 → Вырез-Вытянуть4 (cut)
    with BuildSketch(Plane(origin=(0, 3, 0), x_dir=(1, 0, 0), z_dir=(0, 1, 0))):
        with Locations(Location((5, 0, 0), (0, 0, 270))):
            Circle(SKETCH_14_R)
    extrude(amount=-CUT_EXTRUDE_4_DEPTH, mode=Mode.SUBTRACT)


solid = part_1.part
